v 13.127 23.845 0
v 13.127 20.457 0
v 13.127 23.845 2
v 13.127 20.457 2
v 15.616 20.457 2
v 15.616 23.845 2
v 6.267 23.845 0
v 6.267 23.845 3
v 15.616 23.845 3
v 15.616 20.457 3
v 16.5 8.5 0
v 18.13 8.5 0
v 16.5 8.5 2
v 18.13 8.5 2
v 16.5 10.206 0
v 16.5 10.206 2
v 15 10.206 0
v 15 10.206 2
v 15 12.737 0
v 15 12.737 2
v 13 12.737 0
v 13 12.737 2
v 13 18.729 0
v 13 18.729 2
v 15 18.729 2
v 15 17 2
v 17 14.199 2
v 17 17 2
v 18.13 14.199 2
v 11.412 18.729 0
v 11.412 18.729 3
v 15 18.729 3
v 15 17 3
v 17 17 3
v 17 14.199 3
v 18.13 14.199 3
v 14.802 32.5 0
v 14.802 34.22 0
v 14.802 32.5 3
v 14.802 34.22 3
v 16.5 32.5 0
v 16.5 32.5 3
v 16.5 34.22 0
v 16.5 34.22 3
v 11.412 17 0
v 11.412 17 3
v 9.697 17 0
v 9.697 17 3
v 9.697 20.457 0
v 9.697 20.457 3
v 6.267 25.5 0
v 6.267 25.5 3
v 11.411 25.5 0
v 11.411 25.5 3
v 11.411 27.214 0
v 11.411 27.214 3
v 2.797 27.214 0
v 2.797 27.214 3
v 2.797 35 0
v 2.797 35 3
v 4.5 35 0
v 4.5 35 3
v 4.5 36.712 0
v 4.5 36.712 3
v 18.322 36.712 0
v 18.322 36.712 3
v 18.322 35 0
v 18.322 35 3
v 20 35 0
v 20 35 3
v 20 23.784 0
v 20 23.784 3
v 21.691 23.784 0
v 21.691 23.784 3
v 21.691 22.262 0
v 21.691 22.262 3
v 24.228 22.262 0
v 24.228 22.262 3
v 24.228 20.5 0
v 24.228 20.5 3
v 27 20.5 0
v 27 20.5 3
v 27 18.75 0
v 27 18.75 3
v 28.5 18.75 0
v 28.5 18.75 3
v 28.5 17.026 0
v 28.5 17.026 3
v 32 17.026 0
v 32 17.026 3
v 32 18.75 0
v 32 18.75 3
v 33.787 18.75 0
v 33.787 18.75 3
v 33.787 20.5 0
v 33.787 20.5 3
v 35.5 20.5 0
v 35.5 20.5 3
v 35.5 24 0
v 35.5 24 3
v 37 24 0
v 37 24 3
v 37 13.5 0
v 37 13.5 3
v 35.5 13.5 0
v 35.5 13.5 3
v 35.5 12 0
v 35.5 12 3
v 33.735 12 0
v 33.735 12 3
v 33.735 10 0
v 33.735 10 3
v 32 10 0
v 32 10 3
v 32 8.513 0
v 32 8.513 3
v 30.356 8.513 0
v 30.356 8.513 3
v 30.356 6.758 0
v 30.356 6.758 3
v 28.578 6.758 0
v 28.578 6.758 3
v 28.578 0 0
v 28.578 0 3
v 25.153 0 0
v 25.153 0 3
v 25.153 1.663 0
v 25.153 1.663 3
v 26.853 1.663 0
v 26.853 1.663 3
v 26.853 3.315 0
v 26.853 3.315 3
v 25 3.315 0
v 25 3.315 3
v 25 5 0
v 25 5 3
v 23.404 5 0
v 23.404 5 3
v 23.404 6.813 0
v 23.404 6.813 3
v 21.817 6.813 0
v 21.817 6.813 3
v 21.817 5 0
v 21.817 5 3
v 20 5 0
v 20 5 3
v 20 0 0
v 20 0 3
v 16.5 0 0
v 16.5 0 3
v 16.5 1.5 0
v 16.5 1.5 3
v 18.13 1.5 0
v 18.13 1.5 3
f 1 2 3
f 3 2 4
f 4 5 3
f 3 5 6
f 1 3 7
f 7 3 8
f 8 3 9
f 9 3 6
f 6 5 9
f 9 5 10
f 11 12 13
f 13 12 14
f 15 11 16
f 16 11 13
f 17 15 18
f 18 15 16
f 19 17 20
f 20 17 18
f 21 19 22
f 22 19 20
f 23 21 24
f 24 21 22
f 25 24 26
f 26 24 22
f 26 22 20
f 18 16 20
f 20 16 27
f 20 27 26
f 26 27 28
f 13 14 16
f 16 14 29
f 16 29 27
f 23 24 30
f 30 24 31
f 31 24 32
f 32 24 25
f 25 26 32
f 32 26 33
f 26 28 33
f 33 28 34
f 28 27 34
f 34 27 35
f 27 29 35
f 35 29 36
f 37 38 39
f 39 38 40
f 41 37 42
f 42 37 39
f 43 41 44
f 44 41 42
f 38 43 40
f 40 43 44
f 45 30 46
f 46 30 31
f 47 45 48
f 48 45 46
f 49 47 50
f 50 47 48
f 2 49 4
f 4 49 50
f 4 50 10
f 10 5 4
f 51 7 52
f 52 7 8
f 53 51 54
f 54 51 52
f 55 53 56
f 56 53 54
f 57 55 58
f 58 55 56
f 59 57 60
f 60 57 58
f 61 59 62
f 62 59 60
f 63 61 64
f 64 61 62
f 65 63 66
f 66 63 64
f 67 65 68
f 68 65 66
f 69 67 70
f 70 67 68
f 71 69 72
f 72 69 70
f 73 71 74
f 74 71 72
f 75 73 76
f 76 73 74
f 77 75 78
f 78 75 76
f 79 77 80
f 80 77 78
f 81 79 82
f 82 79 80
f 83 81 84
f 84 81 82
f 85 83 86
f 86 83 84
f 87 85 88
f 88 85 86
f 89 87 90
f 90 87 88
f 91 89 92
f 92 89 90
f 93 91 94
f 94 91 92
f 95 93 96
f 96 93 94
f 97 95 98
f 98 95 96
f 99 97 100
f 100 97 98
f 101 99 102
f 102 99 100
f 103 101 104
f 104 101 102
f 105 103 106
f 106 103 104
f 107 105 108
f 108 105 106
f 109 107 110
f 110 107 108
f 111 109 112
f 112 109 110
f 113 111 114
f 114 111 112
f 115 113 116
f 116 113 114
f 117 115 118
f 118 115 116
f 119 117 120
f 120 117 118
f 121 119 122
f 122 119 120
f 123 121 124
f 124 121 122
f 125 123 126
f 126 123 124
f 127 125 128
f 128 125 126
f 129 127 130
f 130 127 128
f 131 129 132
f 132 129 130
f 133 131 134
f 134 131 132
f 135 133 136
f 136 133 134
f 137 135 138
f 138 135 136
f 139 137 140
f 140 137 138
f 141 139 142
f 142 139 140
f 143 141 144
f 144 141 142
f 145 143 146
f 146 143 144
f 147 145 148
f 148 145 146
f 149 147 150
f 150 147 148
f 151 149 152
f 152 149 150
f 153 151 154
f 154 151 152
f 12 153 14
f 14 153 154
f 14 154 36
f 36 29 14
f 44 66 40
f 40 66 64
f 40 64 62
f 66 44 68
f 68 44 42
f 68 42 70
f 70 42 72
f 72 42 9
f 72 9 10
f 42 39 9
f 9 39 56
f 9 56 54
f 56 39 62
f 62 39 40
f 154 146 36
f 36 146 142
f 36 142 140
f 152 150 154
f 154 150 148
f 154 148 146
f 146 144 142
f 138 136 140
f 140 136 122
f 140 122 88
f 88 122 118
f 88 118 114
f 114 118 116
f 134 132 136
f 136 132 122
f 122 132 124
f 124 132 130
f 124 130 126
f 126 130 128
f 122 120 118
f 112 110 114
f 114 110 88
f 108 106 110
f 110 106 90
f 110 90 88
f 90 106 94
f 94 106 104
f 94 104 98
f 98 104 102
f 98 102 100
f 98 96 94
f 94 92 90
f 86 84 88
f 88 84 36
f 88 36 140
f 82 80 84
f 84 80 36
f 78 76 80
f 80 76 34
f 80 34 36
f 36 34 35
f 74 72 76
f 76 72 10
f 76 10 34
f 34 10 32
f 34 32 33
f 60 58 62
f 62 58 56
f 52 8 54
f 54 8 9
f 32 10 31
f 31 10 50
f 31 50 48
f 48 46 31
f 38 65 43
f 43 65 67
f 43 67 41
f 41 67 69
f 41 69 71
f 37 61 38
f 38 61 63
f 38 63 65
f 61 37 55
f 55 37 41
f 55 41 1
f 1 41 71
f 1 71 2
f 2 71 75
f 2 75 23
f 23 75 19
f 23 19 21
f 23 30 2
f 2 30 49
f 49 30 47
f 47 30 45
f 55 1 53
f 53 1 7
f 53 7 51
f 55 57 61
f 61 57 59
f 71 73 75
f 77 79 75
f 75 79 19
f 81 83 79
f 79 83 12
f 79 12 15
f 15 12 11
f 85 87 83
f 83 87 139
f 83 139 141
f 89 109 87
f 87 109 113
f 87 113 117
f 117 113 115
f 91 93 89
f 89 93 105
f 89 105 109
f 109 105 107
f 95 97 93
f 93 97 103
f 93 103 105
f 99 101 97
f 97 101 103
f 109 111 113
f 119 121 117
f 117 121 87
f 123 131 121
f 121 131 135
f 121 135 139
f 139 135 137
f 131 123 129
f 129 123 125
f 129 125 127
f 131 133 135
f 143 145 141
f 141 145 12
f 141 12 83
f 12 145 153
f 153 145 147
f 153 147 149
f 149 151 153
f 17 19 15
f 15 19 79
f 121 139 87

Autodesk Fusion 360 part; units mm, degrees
sketch "Dino" plane through (0, 0, 0) normal (0, 0, 1) x (1, 0, 0)
  line L0 (16.5, 0) -> (20, 0)
  line L1 (20, 0) -> (20, 5)
  line L2 (20, 5) -> (21.8166, 5)
  line L3 (21.8166, 5) -> (21.8166, 6.8132)
  line L4 (21.8166, 6.8132) -> (23.4038, 6.8132)
  line L5 (23.4038, 6.8132) -> (23.4038, 5)
  line L6 (23.4038, 5) -> (25, 5)
  line L7 (25, 5) -> (25, 3.315)
  line L8 (25, 3.315) -> (26.8534, 3.315)
  line L9 (26.8534, 3.315) -> (26.8534, 1.6631)
  line L10 (26.8534, 1.6631) -> (25.1529, 1.6631)
  line L11 (25.1529, 1.6631) -> (25.1529, 0)
  line L12 (25.1529, 0) -> (28.5781, 0)
  line L13 (28.5781, 0) -> (28.5781, 6.758)
  line L14 (28.5781, 6.758) -> (30.3565, 6.758)
  line L15 (30.3565, 6.758) -> (30.3565, 8.5127)
  line L16 (30.3565, 8.5127) -> (32, 8.5127)
  line L17 (32, 8.5127) -> (32, 10)
  line L18 (32, 10) -> (33.7351, 10)
  line L19 (33.7351, 10) -> (33.7351, 12)
  line L20 (33.7351, 12) -> (35.5, 12)
  line L21 (35.5, 12) -> (35.5, 13.5)
  line L22 (35.5, 13.5) -> (37, 13.5)
  line L23 (37, 13.5) -> (37, 24)
  line L24 (37, 24) -> (35.5, 24)
  line L25 (35.5, 24) -> (35.5, 20.5)
  line L26 (35.5, 20.5) -> (33.7869, 20.5)
  line L27 (33.7869, 20.5) -> (33.7869, 18.75)
  line L28 (33.7869, 18.75) -> (32, 18.75)
  line L29 (32, 18.75) -> (32, 17.0258)
  line L30 (32, 17.0258) -> (28.5, 17.0258)
  line L31 (28.5, 17.0258) -> (28.5, 18.75)
  line L32 (28.5, 18.75) -> (27, 18.75)
  line L33 (27, 18.75) -> (27, 20.5)
  line L34 (27, 20.5) -> (24.2282, 20.5)
  line L35 (24.2282, 20.5) -> (24.2282, 22.2618)
  line L36 (24.2282, 22.2618) -> (21.6914, 22.2618)
  line L37 (21.6914, 22.2618) -> (21.6914, 23.7839)
  line L38 (21.6914, 23.7839) -> (20, 23.7839)
  line L39 (20, 23.7839) -> (20, 35)
  line L40 (20, 35) -> (18.3225, 35)
  line L41 (18.3225, 35) -> (18.3225, 36.7116)
  line L42 (18.3225, 36.7116) -> (4.5, 36.7116)
  line L43 (4.5, 36.7116) -> (4.5, 35)
  line L44 (4.5, 35) -> (2.7971, 35)
  line L45 (2.7971, 35) -> (2.7971, 27.2137)
  line L46 (2.7971, 27.2137) -> (11.4112, 27.2137)
  line L47 (11.4112, 27.2137) -> (11.4112, 25.5)
  line L48 (11.4112, 25.5) -> (6.2675, 25.5)
  line L49 (6.2675, 25.5) -> (6.2675, 23.8448)
  line L50 (6.2675, 23.8448) -> (13.127, 23.8448)
  line L51 (13.127, 23.8448) -> (13.127, 20.4572)
  line L52 (13.127, 20.4572) -> (9.6973, 20.4572)
  line L53 (9.6973, 20.4572) -> (9.6973, 17)
  line L54 (9.6973, 17) -> (11.4121, 17)
  line L55 (11.4121, 17) -> (11.4121, 18.7286)
  line L56 (11.4121, 18.7286) -> (13, 18.7286)
  line L57 (13, 18.7286) -> (13, 12.7374)
  line L58 (13, 12.7374) -> (15, 12.7374)
  line L59 (15, 12.7374) -> (15, 10.206)
  line L60 (15, 10.206) -> (16.5, 10.206)
  line L61 (16.5, 10.206) -> (16.5, 8.5)
  line L62 (16.5, 8.5) -> (18.1296, 8.5)
  line L63 (18.1296, 8.5) -> (18.1296, 1.5)
  line L64 (18.1296, 1.5) -> (16.5, 1.5)
  line L65 (16.5, 1.5) -> (16.5, 0)
  line L66 (13.127, 23.8448) -> (15.6157, 23.8448)
  line L67 (15.6157, 23.8448) -> (15.6157, 20.4572)
  line L68 (15.6157, 20.4572) -> (13.127, 20.4572)
  line L69 (13, 18.7286) -> (15, 18.7286)
  line L70 (15, 18.7286) -> (15, 17)
  line L71 (15, 17) -> (17, 17)
  line L72 (17, 17) -> (17, 14.1994)
  line L73 (17, 14.1994) -> (18.1296, 14.1994)
  line L74 (18.1296, 14.1994) -> (18.1296, 8.5)
  line L75 (14.802, 34.2204) -> (14.802, 32.5)
  line L76 (14.802, 32.5) -> (16.5, 32.5)
  line L77 (16.5, 32.5) -> (16.5, 34.2204)
  line L78 (16.5, 34.2204) -> (14.802, 34.2204)
extrude "Extrude1" add sketch "Dino" along normal blind 3 contours L0 L1 L2 L3 L4 L5 L6 L7 L8 L9 L10 L11 L12 L13 L14 L15 L16 L17 L18 L19 L20 L21 L22 L23 L24 L25 L26 L27 L28 L29 L30 L31 L32 L33 L34 L35 L36 L37 L38 L39 L40 L41 L42 L43 L44 L45 L46 L47 L48 L49 L50 L52 L53 L54 L55 L56 L63 L64 L65 L66 L67 L68 L69 L70 L71 L72 L73 L74
extrude "Extrude2" add sketch "Dino" along normal blind 2 contours L57 L58 L59 L60 L61 L62 L69 L70 L71 L72 L73 L74 | L51 L66 L67 L68
